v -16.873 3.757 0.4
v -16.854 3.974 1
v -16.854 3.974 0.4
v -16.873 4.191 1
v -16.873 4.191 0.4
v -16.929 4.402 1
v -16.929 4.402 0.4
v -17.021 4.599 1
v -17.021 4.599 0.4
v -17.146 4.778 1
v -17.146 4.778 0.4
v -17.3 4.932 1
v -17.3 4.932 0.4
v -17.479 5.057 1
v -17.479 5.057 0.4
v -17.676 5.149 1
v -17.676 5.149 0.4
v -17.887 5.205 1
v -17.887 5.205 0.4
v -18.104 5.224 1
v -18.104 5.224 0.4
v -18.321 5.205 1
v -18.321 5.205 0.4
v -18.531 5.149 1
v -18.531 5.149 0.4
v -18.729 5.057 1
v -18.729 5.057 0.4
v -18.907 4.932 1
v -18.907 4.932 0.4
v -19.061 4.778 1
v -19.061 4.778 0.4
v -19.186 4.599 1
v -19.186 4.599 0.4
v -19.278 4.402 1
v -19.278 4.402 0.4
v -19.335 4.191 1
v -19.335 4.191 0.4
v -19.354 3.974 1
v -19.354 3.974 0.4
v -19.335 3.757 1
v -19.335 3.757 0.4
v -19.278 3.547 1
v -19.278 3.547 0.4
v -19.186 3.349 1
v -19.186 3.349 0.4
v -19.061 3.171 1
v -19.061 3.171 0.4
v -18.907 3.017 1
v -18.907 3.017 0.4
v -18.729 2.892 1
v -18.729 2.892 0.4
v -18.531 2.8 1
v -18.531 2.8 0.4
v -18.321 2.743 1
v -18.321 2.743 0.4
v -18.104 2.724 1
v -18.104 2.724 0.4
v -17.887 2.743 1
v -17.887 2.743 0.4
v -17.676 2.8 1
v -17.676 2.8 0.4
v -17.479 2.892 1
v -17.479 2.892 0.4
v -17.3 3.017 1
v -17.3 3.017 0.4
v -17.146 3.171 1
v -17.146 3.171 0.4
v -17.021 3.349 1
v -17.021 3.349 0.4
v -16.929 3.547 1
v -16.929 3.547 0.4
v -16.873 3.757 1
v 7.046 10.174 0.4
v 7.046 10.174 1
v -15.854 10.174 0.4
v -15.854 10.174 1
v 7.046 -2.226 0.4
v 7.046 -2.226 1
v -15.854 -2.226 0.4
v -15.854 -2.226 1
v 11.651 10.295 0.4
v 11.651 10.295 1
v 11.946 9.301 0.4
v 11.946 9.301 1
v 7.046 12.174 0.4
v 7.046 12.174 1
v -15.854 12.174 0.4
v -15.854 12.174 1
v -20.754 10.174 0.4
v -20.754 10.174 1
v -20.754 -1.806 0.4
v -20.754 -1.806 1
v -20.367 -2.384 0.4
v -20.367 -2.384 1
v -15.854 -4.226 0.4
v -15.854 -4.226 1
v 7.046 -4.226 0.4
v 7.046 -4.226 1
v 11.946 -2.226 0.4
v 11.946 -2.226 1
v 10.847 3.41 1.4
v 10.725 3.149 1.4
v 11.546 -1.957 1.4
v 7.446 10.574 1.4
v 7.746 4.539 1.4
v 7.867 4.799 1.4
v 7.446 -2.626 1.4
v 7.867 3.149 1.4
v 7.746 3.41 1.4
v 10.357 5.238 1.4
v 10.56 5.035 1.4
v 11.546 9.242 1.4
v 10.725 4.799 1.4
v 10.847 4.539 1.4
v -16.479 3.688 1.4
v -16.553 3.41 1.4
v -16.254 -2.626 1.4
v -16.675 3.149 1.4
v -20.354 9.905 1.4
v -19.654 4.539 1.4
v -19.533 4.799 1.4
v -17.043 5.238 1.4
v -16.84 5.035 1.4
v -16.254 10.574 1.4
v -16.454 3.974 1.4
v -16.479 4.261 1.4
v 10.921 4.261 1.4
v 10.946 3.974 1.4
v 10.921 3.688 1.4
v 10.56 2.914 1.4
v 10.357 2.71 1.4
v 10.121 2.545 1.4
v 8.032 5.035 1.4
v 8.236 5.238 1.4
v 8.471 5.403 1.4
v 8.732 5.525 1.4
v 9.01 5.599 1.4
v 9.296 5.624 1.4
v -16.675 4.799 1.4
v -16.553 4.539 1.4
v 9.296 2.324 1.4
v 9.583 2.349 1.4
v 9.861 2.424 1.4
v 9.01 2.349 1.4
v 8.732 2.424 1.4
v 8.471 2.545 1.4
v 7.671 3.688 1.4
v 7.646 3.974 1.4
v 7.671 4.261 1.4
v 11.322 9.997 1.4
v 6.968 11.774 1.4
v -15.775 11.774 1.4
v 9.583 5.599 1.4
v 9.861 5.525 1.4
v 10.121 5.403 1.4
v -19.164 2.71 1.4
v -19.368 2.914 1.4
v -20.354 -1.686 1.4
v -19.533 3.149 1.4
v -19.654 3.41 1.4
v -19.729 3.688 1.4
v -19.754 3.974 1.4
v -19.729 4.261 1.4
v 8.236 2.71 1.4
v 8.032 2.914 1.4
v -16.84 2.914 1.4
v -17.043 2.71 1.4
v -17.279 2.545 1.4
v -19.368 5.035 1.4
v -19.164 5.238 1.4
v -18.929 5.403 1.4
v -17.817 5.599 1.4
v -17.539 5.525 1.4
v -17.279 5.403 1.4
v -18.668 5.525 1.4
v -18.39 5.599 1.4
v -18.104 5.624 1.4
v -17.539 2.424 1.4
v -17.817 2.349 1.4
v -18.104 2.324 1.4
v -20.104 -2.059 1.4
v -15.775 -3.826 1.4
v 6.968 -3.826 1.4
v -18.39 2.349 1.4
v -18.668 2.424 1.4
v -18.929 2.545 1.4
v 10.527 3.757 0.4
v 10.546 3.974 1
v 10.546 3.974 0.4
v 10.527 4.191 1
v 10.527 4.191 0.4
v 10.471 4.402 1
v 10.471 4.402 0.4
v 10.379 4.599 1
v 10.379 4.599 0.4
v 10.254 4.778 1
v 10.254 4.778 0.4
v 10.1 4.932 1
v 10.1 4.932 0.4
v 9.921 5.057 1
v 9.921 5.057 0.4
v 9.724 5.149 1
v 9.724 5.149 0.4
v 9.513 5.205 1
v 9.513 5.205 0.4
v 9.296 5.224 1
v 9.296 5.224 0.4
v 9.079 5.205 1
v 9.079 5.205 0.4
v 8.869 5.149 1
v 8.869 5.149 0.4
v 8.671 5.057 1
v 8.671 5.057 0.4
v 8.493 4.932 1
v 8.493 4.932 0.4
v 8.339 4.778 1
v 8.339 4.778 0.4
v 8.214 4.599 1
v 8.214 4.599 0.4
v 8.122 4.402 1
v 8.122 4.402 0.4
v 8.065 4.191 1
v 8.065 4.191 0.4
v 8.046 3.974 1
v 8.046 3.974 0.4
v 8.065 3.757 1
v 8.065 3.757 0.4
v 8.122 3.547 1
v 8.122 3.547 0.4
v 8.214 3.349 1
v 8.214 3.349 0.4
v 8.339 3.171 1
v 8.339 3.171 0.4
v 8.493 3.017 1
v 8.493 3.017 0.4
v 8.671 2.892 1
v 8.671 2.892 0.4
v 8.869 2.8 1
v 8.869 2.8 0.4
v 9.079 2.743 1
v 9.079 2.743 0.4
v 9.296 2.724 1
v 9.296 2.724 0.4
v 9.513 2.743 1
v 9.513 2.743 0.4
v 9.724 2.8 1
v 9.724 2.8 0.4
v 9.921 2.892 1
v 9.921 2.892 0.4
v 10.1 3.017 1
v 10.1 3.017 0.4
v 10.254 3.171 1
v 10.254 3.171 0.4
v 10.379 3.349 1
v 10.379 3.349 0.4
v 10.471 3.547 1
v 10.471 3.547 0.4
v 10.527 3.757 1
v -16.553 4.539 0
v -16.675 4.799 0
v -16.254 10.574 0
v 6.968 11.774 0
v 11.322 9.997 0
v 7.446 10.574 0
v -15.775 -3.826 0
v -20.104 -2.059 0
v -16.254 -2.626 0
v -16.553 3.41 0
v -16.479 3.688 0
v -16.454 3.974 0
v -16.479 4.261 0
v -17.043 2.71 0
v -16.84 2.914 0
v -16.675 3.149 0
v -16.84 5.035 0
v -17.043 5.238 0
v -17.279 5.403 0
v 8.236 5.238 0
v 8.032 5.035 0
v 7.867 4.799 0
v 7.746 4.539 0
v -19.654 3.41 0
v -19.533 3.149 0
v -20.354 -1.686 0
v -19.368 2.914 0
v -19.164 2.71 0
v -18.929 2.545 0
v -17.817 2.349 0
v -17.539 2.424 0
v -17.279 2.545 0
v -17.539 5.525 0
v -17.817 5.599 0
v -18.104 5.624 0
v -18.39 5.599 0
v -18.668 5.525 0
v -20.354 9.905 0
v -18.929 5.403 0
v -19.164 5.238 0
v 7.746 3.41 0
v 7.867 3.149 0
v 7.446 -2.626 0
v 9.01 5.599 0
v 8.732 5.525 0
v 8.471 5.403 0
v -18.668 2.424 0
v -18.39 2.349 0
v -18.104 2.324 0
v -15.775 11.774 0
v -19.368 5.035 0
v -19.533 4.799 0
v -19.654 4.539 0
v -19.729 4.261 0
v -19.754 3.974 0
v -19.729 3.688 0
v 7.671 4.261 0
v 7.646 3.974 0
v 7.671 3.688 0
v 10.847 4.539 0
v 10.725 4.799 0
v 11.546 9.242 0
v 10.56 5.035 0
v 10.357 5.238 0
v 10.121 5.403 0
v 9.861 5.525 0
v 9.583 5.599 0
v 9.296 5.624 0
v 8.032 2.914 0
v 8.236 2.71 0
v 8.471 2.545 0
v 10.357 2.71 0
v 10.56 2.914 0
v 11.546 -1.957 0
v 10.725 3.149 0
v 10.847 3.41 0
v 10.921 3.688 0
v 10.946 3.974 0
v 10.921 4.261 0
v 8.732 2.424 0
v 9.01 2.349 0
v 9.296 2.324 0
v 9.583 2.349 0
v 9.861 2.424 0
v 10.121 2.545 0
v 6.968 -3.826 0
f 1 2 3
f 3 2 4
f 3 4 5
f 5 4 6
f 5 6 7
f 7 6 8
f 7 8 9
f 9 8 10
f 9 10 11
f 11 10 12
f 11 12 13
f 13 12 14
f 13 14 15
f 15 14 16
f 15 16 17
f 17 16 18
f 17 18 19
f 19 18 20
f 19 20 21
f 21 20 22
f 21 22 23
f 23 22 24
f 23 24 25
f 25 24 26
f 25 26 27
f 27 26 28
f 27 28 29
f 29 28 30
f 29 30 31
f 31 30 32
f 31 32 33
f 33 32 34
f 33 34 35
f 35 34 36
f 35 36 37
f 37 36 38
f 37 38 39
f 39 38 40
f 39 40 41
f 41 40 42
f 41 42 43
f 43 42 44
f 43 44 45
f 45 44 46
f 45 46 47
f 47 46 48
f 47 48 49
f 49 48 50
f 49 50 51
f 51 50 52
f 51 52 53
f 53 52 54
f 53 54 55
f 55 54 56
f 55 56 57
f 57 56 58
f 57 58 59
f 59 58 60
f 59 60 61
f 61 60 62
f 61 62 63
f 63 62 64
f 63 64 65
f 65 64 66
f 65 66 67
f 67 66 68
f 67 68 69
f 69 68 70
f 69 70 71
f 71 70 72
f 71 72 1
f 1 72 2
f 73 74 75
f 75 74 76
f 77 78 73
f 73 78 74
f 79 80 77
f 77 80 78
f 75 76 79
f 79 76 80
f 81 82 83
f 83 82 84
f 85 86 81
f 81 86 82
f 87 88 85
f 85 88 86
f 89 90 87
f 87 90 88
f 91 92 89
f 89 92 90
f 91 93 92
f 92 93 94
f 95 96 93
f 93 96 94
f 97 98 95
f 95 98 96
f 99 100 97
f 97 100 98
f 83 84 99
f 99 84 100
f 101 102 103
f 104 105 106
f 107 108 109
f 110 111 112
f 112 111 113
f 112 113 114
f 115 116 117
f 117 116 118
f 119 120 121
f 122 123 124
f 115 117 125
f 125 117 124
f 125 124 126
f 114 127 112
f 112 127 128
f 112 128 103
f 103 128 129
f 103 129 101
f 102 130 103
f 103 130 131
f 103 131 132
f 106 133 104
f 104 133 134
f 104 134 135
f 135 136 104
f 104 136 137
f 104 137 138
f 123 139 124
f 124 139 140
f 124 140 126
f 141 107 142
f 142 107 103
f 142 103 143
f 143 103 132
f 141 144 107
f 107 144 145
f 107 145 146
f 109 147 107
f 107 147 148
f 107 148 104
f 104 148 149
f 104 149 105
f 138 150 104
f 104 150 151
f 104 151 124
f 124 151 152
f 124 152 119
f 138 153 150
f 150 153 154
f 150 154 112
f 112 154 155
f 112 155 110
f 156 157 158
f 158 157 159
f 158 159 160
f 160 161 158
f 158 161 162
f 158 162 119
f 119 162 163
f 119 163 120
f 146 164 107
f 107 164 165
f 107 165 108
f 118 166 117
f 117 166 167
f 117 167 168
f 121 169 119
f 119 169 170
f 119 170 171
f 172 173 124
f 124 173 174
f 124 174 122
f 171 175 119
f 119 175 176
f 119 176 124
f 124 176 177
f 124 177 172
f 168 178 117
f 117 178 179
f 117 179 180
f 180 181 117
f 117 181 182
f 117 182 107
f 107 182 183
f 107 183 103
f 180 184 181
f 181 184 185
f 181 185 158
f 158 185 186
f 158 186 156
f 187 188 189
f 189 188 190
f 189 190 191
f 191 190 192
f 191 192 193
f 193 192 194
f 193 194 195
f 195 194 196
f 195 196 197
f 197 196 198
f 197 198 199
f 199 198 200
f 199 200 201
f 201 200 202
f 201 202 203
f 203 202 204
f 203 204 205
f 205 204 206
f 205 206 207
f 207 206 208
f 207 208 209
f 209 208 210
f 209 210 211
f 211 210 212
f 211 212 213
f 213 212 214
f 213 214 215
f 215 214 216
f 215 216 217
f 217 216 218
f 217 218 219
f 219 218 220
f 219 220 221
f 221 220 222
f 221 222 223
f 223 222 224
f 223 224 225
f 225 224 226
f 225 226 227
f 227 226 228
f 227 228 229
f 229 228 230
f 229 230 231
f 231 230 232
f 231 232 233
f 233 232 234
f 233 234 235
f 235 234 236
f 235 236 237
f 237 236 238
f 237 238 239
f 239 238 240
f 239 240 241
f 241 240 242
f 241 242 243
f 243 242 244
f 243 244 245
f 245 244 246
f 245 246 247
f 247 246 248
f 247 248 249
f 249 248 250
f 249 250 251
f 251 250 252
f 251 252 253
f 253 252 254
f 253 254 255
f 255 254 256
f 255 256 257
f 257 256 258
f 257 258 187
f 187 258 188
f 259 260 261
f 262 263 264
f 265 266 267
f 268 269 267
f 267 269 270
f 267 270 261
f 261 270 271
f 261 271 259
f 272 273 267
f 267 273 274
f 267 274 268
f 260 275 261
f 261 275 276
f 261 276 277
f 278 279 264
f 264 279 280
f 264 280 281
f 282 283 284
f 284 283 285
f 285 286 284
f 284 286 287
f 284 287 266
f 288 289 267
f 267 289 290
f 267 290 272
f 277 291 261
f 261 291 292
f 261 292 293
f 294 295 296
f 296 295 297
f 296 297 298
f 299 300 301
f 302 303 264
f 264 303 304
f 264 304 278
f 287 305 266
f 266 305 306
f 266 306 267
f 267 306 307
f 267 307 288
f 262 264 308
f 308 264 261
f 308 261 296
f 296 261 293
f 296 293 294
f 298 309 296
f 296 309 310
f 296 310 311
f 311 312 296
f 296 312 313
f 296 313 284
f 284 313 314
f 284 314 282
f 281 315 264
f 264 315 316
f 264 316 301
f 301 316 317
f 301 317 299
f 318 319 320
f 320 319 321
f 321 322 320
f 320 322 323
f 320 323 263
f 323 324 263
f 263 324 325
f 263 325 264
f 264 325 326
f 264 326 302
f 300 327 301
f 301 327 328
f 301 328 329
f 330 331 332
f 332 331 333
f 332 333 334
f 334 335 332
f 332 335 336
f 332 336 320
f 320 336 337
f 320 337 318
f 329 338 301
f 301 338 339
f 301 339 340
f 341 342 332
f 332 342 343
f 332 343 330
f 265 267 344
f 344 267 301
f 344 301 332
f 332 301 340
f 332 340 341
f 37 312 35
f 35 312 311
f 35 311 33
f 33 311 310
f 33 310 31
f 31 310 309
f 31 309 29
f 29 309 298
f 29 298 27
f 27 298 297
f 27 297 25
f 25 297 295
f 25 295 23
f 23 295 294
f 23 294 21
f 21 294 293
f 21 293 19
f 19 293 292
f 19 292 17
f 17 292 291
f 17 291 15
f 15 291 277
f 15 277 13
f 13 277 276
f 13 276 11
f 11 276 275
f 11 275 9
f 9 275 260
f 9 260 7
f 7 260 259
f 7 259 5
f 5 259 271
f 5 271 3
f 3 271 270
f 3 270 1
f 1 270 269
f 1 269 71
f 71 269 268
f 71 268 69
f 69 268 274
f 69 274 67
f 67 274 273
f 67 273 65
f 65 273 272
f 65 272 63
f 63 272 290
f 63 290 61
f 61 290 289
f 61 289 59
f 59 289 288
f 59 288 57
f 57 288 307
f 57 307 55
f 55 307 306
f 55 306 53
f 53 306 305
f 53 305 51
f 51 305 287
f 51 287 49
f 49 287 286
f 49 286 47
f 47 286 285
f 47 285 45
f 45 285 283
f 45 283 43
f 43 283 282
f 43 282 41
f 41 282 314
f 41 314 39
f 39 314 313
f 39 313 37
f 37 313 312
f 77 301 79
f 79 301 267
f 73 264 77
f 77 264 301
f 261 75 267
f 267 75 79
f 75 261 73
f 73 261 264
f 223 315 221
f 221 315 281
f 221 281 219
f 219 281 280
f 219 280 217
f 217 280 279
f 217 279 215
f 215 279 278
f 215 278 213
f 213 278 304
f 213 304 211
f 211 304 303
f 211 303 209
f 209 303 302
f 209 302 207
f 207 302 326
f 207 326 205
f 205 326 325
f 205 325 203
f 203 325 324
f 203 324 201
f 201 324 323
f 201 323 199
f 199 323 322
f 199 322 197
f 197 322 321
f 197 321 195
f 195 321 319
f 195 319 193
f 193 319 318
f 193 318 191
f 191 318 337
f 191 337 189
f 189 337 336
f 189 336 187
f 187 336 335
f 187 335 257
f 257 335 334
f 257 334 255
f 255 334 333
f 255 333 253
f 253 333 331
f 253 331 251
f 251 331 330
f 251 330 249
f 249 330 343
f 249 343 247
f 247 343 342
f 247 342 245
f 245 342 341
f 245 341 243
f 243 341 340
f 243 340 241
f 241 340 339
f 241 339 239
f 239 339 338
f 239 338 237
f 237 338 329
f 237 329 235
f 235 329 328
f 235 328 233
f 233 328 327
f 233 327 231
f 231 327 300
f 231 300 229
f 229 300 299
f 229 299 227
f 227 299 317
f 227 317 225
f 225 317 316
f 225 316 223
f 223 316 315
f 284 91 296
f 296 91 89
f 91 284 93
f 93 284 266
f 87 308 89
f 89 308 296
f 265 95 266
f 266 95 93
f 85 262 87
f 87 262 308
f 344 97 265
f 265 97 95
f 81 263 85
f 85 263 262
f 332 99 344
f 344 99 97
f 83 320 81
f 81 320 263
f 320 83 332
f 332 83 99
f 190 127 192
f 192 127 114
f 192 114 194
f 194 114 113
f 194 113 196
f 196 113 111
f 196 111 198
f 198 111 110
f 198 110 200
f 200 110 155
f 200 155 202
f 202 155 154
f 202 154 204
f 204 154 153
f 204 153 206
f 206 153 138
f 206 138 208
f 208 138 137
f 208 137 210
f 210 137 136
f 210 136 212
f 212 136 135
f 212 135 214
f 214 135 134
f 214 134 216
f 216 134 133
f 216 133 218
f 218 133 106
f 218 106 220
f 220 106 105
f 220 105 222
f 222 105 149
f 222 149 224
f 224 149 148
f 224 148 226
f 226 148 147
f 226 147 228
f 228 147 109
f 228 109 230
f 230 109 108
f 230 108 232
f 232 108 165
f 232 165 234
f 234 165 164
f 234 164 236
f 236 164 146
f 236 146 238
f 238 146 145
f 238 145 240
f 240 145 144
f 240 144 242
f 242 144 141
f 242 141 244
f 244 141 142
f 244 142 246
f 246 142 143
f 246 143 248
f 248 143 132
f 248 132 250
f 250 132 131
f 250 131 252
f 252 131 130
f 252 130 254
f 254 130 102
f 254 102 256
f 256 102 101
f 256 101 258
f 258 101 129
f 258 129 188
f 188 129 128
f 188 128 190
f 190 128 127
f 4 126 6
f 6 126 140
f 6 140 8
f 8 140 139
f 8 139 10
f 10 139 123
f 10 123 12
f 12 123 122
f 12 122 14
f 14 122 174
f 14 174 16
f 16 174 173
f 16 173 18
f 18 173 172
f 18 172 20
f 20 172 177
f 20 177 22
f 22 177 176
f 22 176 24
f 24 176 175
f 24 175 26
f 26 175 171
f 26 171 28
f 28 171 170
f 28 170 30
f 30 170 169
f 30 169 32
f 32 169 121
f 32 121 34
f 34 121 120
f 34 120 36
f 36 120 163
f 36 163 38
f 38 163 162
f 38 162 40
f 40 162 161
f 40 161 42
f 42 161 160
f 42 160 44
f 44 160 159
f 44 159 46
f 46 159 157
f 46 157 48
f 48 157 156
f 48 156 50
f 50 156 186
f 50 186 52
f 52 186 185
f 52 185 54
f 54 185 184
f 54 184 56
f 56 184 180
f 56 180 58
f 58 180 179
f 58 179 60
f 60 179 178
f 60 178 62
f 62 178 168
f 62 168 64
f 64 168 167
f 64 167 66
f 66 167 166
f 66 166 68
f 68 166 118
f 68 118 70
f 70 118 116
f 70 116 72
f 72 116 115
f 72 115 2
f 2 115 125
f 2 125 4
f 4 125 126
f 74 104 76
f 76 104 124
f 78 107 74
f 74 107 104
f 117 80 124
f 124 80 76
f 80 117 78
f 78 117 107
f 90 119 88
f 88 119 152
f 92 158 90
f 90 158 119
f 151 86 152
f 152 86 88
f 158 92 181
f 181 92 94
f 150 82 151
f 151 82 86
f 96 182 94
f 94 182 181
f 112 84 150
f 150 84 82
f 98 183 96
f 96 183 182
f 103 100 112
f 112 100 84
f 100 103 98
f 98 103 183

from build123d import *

# Parameters (mm, degrees)
SKETCH4_R           = 1.2500000000000009
SKETCH4_R_2         = 1.2499999999999993
BOSS_EXTRUDE1_DEPTH = 1.4
CHAMFER1_SIZE       = 0.4


with BuildPart() as part:
    # Sketch4 → Boss-Extrude1 (new body)
    # profile 1 of 8: a face of its own
    with BuildSketch(Plane(origin=(-1.7e-16, 0, 1.4000000000000032), x_dir=(-1, 0, -1.2e-16), z_dir=(1.2e-16, 0, -1))):
        Polygon((-7.546190091207485, 10.174212835332735), (-7.046190091207492, 10.174212835332735), (15.853809908792503, 10.174212835332744), (16.35380990879248, 10.174212835332744), (16.35380990879248, 10.674212835332737), (-7.546190091207485, 10.674212835332732), align=None)
    # profile 2 of 8: a face of its own
    with BuildSketch(Plane(origin=(-1.7e-16, 0, 1.4000000000000032), x_dir=(-1, 0, -1.2e-16), z_dir=(1.2e-16, 0, -1))):
        Polygon((-11.686815091207489, 10.17421283533274), (-7.546190091207485, 10.174212835332735), (-7.546190091207485, 10.674212835332732), (16.35380990879248, 10.674212835332737), (16.35380990879248, 10.174212835332744), (20.7538099087925, 10.17421283533274), (15.853809908792503, 12.174212835332744), (-7.046190091207496, 12.174212835332744), (-11.65105221022055, 10.294677276551901), align=None)
    # profile 3 of 8: a face of its own
    with BuildSketch(Plane(origin=(-1.7e-16, 0, 1.4000000000000032), x_dir=(-1, 0, -1.2e-16), z_dir=(1.2e-16, 0, -1))):
        with BuildLine():
            Line((16.35380990879248, 10.174212835332744), (16.353809908792496, -2.225787164667265))
            Line((16.353809908792496, -2.225787164667266), (20.4739831765189, -2.2257871646672647))
            ThreePointArc((20.473983176518885, -2.2257871646672385), (20.614466316717532, -2.0161736201746514), (20.753809908793457, -1.8058008223556463))
            Line((20.753809908792505, -1.805800822355394), (20.7538099087925, 10.17421283533274))
            Line((20.7538099087925, 10.17421283533274), (16.35380990879248, 10.174212835332744))
        make_face()
        with Locations(Location((18.103809908792506, 3.9742128353327333, 0), (0, 0, 180))):
            Circle(SKETCH4_R, mode=Mode.SUBTRACT)
    # profile 4 of 8: a face of its own
    with BuildSketch(Plane(origin=(-1.7e-16, 0, 1.4000000000000032), x_dir=(-1, 0, -1.2e-16), z_dir=(1.2e-16, 0, -1))):
        with BuildLine():
            Line((-7.54619009120748, -2.7257871646672593), (-7.54619009120748, -2.225787164667266))
            Line((-7.54619009120748, -2.225787164667266), (-11.946190091207495, -2.225787164667265))
            Line((-11.946190091207495, -2.225787164667265), (-7.046190091207487, -4.225787164667266))
            Line((-7.046190091207487, -4.225787164667266), (15.853809908792512, -4.225787164667266))
            Line((15.85380990879251, -4.225787164667266), (20.36710720596046, -2.383625002557896))
            ThreePointArc((20.367107205960004, -2.3836250025573023), (20.420626069676963, -2.3047608484368673), (20.473983176518885, -2.2257871646672385))
            Line((20.4739831765189, -2.2257871646672647), (16.353809908792496, -2.225787164667266))
            Line((16.353809908792496, -2.225787164667265), (16.353809908792496, -2.7257871646672562))
            Line((16.353809908792496, -2.725787164667256), (-7.546190091207482, -2.7257871646672593))
        make_face()
    # profile 5 of 8: a face of its own
    with BuildSketch(Plane(origin=(-1.7e-16, 0, 1.4000000000000032), x_dir=(-1, 0, -1.2e-16), z_dir=(1.2e-16, 0, -1))):
        Polygon((15.853809908792512, -2.225787164667266), (-7.046190091207487, -2.225787164667266), (-7.54619009120748, -2.225787164667266), (-7.54619009120748, -2.7257871646672593), (16.353809908792496, -2.725787164667256), (16.353809908792496, -2.225787164667265), align=None)
    # profile 6 of 8: a face of its own
    with BuildSketch(Plane(origin=(-1.7e-16, 0, 1.4000000000000032), x_dir=(-1, 0, -1.2e-16), z_dir=(1.2e-16, 0, -1))):
        Polygon((-11.946190091207495, -2.225787164667265), (-7.54619009120748, -2.225787164667266), (-7.546190091207485, 10.174212835332735), (-11.686815091207489, 10.17421283533274), (-11.946190091207496, 9.300528624806402), align=None)
        with Locations(Location((-9.296190091207496, 3.9742128353327333, 0), (0, 0, 180))):
            Circle(SKETCH4_R_2, mode=Mode.SUBTRACT)
    # profile 7 of 8: a face of its own
    with BuildSketch(Plane(origin=(-1.7e-16, 0, 1.4000000000000032), x_dir=(-1, 0, -1.2e-16), z_dir=(1.2e-16, 0, -1))):
        Polygon((15.853809908792503, 10.174212835332742), (15.85380990879251, -2.225787164667266), (16.353809908792496, -2.225787164667266), (16.35380990879248, 10.174212835332744), align=None)
    # profile 8 of 8: a face of its own
    with BuildSketch(Plane(origin=(-1.7e-16, 0, 1.4000000000000032), x_dir=(-1, 0, -1.2e-16), z_dir=(1.2e-16, 0, -1))):
        Polygon((-7.54619009120748, -2.225787164667266), (-7.046190091207487, -2.225787164667266), (-7.046190091207492, 10.174212835332735), (-7.546190091207485, 10.174212835332735), align=None)
    extrude(amount=BOSS_EXTRUDE1_DEPTH)

    # Chamfer1
    chamfer1_edges = [part.edges().sort_by_distance(p)[0] for p in [
        (8.046190091207496, 3.974212835332733, 1.4000000000000041),
        (-19.353809908792506, 3.974212835332733, 1.4000000000000008),
        (-4.403809908792507, 10.17421283533274, 1.4000000000000028),
        (7.04619009120749, 3.974212835332734, 1.4000000000000041),
        (-4.403809908792514, -2.2257871646672656, 1.4000000000000028),
        (-15.853809908792506, 3.9742128353327377, 1.4000000000000012),
        (11.798621150714023, 9.797602950679153, 1.4000000000000048),
        (9.348621150714022, 11.234445055942324, 1.4000000000000044),
        (-4.403809908792503, 12.174212835332744, 1.4000000000000028),
        (-18.303809908792502, 11.174212835332742, 1.400000000000001),
        (-20.753809908792505, 4.184206006488673, 1.4000000000000008),
        (-20.56153855062731, -2.095435686482624, 1.4000000000000008),
        (-18.110458557376482, -3.3047060836125812, 1.400000000000001),
        (-4.403809908792512, -4.225787164667266, 1.4000000000000028),
        (9.496190091207492, -3.2257871646672656, 1.4000000000000044),
        (11.946190091207495, 3.5373707300695685, 1.4000000000000048),
        (11.798621150714023, 9.797602950679153, 4.78e-15),
        (7.04619009120749, 3.974212835332734, 4.19e-15),
        (-4.40380990879251, -2.2257871646672656, 2.79e-15),
        (-15.853809908792506, 3.9742128353327377, 1.39e-15),
        (8.046190091207496, 3.974212835332733, 4.32e-15),
        (-19.353809908792506, 3.974212835332733, 9.6e-16),
        (9.348621150714022, 11.234445055942324, 4.48e-15),
        (-4.403809908792503, 12.174212835332744, 2.79e-15),
        (-18.303809908792502, 11.174212835332742, 1.09e-15),
        (-20.753809908792505, 4.184206006488673, 7.9e-16),
        (-20.56153855062727, -2.095435686482599, 8.1e-16),
        (-18.110458557376482, -3.3047060836125812, 1.11e-15),
        (-4.403809908792512, -4.225787164667266, 2.79e-15),
        (9.496190091207492, -3.2257871646672656, 4.49e-15),
        (11.946190091207495, 3.5373707300695685, 4.79e-15),
        (-4.403809908792507, 10.17421283533274, 2.79e-15),
    ]]
    chamfer(chamfer1_edges, length=CHAMFER1_SIZE)


solid = part.part
